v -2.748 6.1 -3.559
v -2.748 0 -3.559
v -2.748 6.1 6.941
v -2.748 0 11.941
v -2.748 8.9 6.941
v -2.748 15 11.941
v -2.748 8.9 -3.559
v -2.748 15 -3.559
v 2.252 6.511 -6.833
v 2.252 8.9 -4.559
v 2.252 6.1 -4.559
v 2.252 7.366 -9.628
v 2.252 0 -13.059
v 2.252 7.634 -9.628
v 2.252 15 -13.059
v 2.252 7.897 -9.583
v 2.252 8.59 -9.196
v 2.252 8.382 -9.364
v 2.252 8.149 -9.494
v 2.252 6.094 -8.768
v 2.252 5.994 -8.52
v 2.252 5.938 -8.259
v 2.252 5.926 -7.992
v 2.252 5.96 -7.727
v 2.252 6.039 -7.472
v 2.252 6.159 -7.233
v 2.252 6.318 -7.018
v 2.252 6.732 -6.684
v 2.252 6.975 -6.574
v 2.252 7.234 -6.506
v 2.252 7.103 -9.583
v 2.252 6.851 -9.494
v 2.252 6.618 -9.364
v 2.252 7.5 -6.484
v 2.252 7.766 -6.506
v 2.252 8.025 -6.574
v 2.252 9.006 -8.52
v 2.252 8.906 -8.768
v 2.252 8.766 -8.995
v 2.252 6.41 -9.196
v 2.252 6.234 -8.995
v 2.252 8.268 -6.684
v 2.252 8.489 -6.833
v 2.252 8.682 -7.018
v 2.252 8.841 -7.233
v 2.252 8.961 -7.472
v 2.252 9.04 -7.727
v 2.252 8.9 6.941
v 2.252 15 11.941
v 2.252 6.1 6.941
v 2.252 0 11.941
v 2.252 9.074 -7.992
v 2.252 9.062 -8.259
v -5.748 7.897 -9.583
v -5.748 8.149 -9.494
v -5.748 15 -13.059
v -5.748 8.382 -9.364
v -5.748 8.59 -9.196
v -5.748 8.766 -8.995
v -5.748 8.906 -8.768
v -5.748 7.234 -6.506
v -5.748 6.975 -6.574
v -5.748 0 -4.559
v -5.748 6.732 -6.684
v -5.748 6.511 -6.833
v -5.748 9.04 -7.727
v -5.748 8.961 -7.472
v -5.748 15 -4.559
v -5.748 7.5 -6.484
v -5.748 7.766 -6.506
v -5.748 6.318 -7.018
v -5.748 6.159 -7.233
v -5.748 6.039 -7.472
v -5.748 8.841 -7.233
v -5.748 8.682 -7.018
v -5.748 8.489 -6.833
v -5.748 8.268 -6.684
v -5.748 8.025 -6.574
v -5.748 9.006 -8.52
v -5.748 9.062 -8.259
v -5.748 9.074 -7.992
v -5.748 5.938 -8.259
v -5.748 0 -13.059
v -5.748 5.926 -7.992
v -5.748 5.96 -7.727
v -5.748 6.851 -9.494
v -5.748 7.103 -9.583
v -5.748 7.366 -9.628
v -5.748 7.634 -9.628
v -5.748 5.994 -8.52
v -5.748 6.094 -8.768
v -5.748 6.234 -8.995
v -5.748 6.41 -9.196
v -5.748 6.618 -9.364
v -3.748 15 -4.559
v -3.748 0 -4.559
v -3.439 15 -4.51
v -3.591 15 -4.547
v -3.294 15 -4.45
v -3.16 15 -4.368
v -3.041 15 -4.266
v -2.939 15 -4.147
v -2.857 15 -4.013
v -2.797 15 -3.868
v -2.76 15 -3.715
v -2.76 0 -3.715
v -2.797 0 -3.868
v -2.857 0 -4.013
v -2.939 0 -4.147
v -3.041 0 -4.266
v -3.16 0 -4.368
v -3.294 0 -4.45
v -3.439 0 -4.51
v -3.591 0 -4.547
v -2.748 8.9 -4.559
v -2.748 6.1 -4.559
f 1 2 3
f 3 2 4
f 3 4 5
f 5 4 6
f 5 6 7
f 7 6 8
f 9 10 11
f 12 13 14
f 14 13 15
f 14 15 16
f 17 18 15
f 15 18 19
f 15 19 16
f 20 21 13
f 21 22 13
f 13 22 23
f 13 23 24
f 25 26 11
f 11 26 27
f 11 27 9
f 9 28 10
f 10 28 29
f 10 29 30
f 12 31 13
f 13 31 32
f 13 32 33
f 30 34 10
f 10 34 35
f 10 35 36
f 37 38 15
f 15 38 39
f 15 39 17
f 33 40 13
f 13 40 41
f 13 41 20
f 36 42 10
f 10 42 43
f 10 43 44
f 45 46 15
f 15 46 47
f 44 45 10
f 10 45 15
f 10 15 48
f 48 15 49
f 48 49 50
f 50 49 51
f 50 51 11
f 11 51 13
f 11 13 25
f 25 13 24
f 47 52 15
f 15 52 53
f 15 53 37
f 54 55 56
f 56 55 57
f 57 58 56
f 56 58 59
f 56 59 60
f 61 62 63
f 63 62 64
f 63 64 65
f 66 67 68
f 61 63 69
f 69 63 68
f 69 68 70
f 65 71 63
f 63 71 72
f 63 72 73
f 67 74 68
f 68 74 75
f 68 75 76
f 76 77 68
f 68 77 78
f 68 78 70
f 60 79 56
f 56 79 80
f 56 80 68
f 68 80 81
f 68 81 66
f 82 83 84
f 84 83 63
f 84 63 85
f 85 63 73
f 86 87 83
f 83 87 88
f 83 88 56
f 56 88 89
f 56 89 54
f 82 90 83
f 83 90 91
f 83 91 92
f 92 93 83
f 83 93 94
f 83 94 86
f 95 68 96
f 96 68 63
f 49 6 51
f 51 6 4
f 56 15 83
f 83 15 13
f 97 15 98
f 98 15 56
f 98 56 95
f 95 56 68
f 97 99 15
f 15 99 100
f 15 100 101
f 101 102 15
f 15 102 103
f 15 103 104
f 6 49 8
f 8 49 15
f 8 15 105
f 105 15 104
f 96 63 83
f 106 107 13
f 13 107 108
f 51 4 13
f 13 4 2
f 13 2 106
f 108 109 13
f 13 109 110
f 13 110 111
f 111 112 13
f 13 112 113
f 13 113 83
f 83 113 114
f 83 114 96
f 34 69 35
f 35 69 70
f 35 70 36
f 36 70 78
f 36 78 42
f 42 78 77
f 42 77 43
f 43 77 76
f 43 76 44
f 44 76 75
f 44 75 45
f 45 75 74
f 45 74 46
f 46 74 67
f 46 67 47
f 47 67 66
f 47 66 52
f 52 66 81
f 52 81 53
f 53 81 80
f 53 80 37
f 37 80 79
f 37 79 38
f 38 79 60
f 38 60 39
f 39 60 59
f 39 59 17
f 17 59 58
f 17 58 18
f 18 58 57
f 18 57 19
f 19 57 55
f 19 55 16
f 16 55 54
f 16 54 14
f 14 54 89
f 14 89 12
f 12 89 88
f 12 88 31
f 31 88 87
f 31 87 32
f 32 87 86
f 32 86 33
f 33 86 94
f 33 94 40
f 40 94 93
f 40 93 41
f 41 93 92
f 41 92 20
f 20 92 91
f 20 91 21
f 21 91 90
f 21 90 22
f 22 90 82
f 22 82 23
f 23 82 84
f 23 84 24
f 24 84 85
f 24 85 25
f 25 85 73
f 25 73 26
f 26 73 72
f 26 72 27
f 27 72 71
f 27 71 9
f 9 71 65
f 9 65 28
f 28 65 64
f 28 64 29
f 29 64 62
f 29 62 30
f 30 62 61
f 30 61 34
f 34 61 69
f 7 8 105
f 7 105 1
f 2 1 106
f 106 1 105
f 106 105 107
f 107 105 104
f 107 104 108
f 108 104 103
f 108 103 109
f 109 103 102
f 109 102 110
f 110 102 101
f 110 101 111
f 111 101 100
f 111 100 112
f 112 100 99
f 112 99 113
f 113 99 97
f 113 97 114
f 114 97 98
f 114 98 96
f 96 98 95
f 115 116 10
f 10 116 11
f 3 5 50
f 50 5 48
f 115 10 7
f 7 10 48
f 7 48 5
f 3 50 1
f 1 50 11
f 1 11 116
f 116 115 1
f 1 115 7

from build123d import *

# Parameters (mm, degrees)
EXTRUDE_1_DEPTH     = 15
CUT_EXTRUDE_1_DEPTH = 15
FILLET_1_R          = 1
SKETCH_3_W          = 11.5
SKETCH_3_H          = 1.4
CUT_EXTRUDE_2_DEPTH = 10


with BuildPart() as part:
    # 草图1 → 凸台-拉伸1 (new body)
    with BuildSketch(Plane(origin=(0, 0, 0), x_dir=(1, 0, 0), z_dir=(0, 1, 0))):
        Polygon((-5.74789916, 13.058823529), (2.25210084, 13.058823529), (2.25210084, -11.941176471), (-2.74789916, -11.941176471), (-2.74789916, 4.558823529), (-5.74789916, 4.558823529), align=None)
    extrude(amount=EXTRUDE_1_DEPTH)

    # 草图2 → 切除-拉伸1 (cut)
    with BuildSketch(Plane.ZY.offset(5.74789916)):
        with BuildLine():
            ThreePointArc((-6.483823529, 7.5), (-8.058823529, 9.075), (-9.633823529, 7.5))
            Line((-9.633823529, 7.5), (-6.483823529, 7.5))
        make_face()
        with BuildLine():
            Line((-6.483823529, 7.5), (-9.633823529, 7.5))
            ThreePointArc((-9.633823529, 7.5), (-8.058823529, 5.925), (-6.483823529, 7.5))
        make_face()
    extrude(amount=-CUT_EXTRUDE_1_DEPTH, mode=Mode.SUBTRACT)

    # 圆角1
    fillet_1_edges = [part.edges().sort_by_distance(p)[0] for p in [
        (-2.74789916, 7.5, -4.558823529),
    ]]
    fillet(fillet_1_edges, radius=FILLET_1_R)

    # 草图3 → 切除-拉伸2 (cut)
    with BuildSketch(Plane.ZY.offset(2.74789916)):
        with Locations((1.191176471, 8.2)):
            Rectangle(SKETCH_3_W, SKETCH_3_H)
        with Locations((1.191176471, 6.8)):
            Rectangle(SKETCH_3_W, SKETCH_3_H)
    extrude(amount=-CUT_EXTRUDE_2_DEPTH, mode=Mode.SUBTRACT)


solid = part.part
